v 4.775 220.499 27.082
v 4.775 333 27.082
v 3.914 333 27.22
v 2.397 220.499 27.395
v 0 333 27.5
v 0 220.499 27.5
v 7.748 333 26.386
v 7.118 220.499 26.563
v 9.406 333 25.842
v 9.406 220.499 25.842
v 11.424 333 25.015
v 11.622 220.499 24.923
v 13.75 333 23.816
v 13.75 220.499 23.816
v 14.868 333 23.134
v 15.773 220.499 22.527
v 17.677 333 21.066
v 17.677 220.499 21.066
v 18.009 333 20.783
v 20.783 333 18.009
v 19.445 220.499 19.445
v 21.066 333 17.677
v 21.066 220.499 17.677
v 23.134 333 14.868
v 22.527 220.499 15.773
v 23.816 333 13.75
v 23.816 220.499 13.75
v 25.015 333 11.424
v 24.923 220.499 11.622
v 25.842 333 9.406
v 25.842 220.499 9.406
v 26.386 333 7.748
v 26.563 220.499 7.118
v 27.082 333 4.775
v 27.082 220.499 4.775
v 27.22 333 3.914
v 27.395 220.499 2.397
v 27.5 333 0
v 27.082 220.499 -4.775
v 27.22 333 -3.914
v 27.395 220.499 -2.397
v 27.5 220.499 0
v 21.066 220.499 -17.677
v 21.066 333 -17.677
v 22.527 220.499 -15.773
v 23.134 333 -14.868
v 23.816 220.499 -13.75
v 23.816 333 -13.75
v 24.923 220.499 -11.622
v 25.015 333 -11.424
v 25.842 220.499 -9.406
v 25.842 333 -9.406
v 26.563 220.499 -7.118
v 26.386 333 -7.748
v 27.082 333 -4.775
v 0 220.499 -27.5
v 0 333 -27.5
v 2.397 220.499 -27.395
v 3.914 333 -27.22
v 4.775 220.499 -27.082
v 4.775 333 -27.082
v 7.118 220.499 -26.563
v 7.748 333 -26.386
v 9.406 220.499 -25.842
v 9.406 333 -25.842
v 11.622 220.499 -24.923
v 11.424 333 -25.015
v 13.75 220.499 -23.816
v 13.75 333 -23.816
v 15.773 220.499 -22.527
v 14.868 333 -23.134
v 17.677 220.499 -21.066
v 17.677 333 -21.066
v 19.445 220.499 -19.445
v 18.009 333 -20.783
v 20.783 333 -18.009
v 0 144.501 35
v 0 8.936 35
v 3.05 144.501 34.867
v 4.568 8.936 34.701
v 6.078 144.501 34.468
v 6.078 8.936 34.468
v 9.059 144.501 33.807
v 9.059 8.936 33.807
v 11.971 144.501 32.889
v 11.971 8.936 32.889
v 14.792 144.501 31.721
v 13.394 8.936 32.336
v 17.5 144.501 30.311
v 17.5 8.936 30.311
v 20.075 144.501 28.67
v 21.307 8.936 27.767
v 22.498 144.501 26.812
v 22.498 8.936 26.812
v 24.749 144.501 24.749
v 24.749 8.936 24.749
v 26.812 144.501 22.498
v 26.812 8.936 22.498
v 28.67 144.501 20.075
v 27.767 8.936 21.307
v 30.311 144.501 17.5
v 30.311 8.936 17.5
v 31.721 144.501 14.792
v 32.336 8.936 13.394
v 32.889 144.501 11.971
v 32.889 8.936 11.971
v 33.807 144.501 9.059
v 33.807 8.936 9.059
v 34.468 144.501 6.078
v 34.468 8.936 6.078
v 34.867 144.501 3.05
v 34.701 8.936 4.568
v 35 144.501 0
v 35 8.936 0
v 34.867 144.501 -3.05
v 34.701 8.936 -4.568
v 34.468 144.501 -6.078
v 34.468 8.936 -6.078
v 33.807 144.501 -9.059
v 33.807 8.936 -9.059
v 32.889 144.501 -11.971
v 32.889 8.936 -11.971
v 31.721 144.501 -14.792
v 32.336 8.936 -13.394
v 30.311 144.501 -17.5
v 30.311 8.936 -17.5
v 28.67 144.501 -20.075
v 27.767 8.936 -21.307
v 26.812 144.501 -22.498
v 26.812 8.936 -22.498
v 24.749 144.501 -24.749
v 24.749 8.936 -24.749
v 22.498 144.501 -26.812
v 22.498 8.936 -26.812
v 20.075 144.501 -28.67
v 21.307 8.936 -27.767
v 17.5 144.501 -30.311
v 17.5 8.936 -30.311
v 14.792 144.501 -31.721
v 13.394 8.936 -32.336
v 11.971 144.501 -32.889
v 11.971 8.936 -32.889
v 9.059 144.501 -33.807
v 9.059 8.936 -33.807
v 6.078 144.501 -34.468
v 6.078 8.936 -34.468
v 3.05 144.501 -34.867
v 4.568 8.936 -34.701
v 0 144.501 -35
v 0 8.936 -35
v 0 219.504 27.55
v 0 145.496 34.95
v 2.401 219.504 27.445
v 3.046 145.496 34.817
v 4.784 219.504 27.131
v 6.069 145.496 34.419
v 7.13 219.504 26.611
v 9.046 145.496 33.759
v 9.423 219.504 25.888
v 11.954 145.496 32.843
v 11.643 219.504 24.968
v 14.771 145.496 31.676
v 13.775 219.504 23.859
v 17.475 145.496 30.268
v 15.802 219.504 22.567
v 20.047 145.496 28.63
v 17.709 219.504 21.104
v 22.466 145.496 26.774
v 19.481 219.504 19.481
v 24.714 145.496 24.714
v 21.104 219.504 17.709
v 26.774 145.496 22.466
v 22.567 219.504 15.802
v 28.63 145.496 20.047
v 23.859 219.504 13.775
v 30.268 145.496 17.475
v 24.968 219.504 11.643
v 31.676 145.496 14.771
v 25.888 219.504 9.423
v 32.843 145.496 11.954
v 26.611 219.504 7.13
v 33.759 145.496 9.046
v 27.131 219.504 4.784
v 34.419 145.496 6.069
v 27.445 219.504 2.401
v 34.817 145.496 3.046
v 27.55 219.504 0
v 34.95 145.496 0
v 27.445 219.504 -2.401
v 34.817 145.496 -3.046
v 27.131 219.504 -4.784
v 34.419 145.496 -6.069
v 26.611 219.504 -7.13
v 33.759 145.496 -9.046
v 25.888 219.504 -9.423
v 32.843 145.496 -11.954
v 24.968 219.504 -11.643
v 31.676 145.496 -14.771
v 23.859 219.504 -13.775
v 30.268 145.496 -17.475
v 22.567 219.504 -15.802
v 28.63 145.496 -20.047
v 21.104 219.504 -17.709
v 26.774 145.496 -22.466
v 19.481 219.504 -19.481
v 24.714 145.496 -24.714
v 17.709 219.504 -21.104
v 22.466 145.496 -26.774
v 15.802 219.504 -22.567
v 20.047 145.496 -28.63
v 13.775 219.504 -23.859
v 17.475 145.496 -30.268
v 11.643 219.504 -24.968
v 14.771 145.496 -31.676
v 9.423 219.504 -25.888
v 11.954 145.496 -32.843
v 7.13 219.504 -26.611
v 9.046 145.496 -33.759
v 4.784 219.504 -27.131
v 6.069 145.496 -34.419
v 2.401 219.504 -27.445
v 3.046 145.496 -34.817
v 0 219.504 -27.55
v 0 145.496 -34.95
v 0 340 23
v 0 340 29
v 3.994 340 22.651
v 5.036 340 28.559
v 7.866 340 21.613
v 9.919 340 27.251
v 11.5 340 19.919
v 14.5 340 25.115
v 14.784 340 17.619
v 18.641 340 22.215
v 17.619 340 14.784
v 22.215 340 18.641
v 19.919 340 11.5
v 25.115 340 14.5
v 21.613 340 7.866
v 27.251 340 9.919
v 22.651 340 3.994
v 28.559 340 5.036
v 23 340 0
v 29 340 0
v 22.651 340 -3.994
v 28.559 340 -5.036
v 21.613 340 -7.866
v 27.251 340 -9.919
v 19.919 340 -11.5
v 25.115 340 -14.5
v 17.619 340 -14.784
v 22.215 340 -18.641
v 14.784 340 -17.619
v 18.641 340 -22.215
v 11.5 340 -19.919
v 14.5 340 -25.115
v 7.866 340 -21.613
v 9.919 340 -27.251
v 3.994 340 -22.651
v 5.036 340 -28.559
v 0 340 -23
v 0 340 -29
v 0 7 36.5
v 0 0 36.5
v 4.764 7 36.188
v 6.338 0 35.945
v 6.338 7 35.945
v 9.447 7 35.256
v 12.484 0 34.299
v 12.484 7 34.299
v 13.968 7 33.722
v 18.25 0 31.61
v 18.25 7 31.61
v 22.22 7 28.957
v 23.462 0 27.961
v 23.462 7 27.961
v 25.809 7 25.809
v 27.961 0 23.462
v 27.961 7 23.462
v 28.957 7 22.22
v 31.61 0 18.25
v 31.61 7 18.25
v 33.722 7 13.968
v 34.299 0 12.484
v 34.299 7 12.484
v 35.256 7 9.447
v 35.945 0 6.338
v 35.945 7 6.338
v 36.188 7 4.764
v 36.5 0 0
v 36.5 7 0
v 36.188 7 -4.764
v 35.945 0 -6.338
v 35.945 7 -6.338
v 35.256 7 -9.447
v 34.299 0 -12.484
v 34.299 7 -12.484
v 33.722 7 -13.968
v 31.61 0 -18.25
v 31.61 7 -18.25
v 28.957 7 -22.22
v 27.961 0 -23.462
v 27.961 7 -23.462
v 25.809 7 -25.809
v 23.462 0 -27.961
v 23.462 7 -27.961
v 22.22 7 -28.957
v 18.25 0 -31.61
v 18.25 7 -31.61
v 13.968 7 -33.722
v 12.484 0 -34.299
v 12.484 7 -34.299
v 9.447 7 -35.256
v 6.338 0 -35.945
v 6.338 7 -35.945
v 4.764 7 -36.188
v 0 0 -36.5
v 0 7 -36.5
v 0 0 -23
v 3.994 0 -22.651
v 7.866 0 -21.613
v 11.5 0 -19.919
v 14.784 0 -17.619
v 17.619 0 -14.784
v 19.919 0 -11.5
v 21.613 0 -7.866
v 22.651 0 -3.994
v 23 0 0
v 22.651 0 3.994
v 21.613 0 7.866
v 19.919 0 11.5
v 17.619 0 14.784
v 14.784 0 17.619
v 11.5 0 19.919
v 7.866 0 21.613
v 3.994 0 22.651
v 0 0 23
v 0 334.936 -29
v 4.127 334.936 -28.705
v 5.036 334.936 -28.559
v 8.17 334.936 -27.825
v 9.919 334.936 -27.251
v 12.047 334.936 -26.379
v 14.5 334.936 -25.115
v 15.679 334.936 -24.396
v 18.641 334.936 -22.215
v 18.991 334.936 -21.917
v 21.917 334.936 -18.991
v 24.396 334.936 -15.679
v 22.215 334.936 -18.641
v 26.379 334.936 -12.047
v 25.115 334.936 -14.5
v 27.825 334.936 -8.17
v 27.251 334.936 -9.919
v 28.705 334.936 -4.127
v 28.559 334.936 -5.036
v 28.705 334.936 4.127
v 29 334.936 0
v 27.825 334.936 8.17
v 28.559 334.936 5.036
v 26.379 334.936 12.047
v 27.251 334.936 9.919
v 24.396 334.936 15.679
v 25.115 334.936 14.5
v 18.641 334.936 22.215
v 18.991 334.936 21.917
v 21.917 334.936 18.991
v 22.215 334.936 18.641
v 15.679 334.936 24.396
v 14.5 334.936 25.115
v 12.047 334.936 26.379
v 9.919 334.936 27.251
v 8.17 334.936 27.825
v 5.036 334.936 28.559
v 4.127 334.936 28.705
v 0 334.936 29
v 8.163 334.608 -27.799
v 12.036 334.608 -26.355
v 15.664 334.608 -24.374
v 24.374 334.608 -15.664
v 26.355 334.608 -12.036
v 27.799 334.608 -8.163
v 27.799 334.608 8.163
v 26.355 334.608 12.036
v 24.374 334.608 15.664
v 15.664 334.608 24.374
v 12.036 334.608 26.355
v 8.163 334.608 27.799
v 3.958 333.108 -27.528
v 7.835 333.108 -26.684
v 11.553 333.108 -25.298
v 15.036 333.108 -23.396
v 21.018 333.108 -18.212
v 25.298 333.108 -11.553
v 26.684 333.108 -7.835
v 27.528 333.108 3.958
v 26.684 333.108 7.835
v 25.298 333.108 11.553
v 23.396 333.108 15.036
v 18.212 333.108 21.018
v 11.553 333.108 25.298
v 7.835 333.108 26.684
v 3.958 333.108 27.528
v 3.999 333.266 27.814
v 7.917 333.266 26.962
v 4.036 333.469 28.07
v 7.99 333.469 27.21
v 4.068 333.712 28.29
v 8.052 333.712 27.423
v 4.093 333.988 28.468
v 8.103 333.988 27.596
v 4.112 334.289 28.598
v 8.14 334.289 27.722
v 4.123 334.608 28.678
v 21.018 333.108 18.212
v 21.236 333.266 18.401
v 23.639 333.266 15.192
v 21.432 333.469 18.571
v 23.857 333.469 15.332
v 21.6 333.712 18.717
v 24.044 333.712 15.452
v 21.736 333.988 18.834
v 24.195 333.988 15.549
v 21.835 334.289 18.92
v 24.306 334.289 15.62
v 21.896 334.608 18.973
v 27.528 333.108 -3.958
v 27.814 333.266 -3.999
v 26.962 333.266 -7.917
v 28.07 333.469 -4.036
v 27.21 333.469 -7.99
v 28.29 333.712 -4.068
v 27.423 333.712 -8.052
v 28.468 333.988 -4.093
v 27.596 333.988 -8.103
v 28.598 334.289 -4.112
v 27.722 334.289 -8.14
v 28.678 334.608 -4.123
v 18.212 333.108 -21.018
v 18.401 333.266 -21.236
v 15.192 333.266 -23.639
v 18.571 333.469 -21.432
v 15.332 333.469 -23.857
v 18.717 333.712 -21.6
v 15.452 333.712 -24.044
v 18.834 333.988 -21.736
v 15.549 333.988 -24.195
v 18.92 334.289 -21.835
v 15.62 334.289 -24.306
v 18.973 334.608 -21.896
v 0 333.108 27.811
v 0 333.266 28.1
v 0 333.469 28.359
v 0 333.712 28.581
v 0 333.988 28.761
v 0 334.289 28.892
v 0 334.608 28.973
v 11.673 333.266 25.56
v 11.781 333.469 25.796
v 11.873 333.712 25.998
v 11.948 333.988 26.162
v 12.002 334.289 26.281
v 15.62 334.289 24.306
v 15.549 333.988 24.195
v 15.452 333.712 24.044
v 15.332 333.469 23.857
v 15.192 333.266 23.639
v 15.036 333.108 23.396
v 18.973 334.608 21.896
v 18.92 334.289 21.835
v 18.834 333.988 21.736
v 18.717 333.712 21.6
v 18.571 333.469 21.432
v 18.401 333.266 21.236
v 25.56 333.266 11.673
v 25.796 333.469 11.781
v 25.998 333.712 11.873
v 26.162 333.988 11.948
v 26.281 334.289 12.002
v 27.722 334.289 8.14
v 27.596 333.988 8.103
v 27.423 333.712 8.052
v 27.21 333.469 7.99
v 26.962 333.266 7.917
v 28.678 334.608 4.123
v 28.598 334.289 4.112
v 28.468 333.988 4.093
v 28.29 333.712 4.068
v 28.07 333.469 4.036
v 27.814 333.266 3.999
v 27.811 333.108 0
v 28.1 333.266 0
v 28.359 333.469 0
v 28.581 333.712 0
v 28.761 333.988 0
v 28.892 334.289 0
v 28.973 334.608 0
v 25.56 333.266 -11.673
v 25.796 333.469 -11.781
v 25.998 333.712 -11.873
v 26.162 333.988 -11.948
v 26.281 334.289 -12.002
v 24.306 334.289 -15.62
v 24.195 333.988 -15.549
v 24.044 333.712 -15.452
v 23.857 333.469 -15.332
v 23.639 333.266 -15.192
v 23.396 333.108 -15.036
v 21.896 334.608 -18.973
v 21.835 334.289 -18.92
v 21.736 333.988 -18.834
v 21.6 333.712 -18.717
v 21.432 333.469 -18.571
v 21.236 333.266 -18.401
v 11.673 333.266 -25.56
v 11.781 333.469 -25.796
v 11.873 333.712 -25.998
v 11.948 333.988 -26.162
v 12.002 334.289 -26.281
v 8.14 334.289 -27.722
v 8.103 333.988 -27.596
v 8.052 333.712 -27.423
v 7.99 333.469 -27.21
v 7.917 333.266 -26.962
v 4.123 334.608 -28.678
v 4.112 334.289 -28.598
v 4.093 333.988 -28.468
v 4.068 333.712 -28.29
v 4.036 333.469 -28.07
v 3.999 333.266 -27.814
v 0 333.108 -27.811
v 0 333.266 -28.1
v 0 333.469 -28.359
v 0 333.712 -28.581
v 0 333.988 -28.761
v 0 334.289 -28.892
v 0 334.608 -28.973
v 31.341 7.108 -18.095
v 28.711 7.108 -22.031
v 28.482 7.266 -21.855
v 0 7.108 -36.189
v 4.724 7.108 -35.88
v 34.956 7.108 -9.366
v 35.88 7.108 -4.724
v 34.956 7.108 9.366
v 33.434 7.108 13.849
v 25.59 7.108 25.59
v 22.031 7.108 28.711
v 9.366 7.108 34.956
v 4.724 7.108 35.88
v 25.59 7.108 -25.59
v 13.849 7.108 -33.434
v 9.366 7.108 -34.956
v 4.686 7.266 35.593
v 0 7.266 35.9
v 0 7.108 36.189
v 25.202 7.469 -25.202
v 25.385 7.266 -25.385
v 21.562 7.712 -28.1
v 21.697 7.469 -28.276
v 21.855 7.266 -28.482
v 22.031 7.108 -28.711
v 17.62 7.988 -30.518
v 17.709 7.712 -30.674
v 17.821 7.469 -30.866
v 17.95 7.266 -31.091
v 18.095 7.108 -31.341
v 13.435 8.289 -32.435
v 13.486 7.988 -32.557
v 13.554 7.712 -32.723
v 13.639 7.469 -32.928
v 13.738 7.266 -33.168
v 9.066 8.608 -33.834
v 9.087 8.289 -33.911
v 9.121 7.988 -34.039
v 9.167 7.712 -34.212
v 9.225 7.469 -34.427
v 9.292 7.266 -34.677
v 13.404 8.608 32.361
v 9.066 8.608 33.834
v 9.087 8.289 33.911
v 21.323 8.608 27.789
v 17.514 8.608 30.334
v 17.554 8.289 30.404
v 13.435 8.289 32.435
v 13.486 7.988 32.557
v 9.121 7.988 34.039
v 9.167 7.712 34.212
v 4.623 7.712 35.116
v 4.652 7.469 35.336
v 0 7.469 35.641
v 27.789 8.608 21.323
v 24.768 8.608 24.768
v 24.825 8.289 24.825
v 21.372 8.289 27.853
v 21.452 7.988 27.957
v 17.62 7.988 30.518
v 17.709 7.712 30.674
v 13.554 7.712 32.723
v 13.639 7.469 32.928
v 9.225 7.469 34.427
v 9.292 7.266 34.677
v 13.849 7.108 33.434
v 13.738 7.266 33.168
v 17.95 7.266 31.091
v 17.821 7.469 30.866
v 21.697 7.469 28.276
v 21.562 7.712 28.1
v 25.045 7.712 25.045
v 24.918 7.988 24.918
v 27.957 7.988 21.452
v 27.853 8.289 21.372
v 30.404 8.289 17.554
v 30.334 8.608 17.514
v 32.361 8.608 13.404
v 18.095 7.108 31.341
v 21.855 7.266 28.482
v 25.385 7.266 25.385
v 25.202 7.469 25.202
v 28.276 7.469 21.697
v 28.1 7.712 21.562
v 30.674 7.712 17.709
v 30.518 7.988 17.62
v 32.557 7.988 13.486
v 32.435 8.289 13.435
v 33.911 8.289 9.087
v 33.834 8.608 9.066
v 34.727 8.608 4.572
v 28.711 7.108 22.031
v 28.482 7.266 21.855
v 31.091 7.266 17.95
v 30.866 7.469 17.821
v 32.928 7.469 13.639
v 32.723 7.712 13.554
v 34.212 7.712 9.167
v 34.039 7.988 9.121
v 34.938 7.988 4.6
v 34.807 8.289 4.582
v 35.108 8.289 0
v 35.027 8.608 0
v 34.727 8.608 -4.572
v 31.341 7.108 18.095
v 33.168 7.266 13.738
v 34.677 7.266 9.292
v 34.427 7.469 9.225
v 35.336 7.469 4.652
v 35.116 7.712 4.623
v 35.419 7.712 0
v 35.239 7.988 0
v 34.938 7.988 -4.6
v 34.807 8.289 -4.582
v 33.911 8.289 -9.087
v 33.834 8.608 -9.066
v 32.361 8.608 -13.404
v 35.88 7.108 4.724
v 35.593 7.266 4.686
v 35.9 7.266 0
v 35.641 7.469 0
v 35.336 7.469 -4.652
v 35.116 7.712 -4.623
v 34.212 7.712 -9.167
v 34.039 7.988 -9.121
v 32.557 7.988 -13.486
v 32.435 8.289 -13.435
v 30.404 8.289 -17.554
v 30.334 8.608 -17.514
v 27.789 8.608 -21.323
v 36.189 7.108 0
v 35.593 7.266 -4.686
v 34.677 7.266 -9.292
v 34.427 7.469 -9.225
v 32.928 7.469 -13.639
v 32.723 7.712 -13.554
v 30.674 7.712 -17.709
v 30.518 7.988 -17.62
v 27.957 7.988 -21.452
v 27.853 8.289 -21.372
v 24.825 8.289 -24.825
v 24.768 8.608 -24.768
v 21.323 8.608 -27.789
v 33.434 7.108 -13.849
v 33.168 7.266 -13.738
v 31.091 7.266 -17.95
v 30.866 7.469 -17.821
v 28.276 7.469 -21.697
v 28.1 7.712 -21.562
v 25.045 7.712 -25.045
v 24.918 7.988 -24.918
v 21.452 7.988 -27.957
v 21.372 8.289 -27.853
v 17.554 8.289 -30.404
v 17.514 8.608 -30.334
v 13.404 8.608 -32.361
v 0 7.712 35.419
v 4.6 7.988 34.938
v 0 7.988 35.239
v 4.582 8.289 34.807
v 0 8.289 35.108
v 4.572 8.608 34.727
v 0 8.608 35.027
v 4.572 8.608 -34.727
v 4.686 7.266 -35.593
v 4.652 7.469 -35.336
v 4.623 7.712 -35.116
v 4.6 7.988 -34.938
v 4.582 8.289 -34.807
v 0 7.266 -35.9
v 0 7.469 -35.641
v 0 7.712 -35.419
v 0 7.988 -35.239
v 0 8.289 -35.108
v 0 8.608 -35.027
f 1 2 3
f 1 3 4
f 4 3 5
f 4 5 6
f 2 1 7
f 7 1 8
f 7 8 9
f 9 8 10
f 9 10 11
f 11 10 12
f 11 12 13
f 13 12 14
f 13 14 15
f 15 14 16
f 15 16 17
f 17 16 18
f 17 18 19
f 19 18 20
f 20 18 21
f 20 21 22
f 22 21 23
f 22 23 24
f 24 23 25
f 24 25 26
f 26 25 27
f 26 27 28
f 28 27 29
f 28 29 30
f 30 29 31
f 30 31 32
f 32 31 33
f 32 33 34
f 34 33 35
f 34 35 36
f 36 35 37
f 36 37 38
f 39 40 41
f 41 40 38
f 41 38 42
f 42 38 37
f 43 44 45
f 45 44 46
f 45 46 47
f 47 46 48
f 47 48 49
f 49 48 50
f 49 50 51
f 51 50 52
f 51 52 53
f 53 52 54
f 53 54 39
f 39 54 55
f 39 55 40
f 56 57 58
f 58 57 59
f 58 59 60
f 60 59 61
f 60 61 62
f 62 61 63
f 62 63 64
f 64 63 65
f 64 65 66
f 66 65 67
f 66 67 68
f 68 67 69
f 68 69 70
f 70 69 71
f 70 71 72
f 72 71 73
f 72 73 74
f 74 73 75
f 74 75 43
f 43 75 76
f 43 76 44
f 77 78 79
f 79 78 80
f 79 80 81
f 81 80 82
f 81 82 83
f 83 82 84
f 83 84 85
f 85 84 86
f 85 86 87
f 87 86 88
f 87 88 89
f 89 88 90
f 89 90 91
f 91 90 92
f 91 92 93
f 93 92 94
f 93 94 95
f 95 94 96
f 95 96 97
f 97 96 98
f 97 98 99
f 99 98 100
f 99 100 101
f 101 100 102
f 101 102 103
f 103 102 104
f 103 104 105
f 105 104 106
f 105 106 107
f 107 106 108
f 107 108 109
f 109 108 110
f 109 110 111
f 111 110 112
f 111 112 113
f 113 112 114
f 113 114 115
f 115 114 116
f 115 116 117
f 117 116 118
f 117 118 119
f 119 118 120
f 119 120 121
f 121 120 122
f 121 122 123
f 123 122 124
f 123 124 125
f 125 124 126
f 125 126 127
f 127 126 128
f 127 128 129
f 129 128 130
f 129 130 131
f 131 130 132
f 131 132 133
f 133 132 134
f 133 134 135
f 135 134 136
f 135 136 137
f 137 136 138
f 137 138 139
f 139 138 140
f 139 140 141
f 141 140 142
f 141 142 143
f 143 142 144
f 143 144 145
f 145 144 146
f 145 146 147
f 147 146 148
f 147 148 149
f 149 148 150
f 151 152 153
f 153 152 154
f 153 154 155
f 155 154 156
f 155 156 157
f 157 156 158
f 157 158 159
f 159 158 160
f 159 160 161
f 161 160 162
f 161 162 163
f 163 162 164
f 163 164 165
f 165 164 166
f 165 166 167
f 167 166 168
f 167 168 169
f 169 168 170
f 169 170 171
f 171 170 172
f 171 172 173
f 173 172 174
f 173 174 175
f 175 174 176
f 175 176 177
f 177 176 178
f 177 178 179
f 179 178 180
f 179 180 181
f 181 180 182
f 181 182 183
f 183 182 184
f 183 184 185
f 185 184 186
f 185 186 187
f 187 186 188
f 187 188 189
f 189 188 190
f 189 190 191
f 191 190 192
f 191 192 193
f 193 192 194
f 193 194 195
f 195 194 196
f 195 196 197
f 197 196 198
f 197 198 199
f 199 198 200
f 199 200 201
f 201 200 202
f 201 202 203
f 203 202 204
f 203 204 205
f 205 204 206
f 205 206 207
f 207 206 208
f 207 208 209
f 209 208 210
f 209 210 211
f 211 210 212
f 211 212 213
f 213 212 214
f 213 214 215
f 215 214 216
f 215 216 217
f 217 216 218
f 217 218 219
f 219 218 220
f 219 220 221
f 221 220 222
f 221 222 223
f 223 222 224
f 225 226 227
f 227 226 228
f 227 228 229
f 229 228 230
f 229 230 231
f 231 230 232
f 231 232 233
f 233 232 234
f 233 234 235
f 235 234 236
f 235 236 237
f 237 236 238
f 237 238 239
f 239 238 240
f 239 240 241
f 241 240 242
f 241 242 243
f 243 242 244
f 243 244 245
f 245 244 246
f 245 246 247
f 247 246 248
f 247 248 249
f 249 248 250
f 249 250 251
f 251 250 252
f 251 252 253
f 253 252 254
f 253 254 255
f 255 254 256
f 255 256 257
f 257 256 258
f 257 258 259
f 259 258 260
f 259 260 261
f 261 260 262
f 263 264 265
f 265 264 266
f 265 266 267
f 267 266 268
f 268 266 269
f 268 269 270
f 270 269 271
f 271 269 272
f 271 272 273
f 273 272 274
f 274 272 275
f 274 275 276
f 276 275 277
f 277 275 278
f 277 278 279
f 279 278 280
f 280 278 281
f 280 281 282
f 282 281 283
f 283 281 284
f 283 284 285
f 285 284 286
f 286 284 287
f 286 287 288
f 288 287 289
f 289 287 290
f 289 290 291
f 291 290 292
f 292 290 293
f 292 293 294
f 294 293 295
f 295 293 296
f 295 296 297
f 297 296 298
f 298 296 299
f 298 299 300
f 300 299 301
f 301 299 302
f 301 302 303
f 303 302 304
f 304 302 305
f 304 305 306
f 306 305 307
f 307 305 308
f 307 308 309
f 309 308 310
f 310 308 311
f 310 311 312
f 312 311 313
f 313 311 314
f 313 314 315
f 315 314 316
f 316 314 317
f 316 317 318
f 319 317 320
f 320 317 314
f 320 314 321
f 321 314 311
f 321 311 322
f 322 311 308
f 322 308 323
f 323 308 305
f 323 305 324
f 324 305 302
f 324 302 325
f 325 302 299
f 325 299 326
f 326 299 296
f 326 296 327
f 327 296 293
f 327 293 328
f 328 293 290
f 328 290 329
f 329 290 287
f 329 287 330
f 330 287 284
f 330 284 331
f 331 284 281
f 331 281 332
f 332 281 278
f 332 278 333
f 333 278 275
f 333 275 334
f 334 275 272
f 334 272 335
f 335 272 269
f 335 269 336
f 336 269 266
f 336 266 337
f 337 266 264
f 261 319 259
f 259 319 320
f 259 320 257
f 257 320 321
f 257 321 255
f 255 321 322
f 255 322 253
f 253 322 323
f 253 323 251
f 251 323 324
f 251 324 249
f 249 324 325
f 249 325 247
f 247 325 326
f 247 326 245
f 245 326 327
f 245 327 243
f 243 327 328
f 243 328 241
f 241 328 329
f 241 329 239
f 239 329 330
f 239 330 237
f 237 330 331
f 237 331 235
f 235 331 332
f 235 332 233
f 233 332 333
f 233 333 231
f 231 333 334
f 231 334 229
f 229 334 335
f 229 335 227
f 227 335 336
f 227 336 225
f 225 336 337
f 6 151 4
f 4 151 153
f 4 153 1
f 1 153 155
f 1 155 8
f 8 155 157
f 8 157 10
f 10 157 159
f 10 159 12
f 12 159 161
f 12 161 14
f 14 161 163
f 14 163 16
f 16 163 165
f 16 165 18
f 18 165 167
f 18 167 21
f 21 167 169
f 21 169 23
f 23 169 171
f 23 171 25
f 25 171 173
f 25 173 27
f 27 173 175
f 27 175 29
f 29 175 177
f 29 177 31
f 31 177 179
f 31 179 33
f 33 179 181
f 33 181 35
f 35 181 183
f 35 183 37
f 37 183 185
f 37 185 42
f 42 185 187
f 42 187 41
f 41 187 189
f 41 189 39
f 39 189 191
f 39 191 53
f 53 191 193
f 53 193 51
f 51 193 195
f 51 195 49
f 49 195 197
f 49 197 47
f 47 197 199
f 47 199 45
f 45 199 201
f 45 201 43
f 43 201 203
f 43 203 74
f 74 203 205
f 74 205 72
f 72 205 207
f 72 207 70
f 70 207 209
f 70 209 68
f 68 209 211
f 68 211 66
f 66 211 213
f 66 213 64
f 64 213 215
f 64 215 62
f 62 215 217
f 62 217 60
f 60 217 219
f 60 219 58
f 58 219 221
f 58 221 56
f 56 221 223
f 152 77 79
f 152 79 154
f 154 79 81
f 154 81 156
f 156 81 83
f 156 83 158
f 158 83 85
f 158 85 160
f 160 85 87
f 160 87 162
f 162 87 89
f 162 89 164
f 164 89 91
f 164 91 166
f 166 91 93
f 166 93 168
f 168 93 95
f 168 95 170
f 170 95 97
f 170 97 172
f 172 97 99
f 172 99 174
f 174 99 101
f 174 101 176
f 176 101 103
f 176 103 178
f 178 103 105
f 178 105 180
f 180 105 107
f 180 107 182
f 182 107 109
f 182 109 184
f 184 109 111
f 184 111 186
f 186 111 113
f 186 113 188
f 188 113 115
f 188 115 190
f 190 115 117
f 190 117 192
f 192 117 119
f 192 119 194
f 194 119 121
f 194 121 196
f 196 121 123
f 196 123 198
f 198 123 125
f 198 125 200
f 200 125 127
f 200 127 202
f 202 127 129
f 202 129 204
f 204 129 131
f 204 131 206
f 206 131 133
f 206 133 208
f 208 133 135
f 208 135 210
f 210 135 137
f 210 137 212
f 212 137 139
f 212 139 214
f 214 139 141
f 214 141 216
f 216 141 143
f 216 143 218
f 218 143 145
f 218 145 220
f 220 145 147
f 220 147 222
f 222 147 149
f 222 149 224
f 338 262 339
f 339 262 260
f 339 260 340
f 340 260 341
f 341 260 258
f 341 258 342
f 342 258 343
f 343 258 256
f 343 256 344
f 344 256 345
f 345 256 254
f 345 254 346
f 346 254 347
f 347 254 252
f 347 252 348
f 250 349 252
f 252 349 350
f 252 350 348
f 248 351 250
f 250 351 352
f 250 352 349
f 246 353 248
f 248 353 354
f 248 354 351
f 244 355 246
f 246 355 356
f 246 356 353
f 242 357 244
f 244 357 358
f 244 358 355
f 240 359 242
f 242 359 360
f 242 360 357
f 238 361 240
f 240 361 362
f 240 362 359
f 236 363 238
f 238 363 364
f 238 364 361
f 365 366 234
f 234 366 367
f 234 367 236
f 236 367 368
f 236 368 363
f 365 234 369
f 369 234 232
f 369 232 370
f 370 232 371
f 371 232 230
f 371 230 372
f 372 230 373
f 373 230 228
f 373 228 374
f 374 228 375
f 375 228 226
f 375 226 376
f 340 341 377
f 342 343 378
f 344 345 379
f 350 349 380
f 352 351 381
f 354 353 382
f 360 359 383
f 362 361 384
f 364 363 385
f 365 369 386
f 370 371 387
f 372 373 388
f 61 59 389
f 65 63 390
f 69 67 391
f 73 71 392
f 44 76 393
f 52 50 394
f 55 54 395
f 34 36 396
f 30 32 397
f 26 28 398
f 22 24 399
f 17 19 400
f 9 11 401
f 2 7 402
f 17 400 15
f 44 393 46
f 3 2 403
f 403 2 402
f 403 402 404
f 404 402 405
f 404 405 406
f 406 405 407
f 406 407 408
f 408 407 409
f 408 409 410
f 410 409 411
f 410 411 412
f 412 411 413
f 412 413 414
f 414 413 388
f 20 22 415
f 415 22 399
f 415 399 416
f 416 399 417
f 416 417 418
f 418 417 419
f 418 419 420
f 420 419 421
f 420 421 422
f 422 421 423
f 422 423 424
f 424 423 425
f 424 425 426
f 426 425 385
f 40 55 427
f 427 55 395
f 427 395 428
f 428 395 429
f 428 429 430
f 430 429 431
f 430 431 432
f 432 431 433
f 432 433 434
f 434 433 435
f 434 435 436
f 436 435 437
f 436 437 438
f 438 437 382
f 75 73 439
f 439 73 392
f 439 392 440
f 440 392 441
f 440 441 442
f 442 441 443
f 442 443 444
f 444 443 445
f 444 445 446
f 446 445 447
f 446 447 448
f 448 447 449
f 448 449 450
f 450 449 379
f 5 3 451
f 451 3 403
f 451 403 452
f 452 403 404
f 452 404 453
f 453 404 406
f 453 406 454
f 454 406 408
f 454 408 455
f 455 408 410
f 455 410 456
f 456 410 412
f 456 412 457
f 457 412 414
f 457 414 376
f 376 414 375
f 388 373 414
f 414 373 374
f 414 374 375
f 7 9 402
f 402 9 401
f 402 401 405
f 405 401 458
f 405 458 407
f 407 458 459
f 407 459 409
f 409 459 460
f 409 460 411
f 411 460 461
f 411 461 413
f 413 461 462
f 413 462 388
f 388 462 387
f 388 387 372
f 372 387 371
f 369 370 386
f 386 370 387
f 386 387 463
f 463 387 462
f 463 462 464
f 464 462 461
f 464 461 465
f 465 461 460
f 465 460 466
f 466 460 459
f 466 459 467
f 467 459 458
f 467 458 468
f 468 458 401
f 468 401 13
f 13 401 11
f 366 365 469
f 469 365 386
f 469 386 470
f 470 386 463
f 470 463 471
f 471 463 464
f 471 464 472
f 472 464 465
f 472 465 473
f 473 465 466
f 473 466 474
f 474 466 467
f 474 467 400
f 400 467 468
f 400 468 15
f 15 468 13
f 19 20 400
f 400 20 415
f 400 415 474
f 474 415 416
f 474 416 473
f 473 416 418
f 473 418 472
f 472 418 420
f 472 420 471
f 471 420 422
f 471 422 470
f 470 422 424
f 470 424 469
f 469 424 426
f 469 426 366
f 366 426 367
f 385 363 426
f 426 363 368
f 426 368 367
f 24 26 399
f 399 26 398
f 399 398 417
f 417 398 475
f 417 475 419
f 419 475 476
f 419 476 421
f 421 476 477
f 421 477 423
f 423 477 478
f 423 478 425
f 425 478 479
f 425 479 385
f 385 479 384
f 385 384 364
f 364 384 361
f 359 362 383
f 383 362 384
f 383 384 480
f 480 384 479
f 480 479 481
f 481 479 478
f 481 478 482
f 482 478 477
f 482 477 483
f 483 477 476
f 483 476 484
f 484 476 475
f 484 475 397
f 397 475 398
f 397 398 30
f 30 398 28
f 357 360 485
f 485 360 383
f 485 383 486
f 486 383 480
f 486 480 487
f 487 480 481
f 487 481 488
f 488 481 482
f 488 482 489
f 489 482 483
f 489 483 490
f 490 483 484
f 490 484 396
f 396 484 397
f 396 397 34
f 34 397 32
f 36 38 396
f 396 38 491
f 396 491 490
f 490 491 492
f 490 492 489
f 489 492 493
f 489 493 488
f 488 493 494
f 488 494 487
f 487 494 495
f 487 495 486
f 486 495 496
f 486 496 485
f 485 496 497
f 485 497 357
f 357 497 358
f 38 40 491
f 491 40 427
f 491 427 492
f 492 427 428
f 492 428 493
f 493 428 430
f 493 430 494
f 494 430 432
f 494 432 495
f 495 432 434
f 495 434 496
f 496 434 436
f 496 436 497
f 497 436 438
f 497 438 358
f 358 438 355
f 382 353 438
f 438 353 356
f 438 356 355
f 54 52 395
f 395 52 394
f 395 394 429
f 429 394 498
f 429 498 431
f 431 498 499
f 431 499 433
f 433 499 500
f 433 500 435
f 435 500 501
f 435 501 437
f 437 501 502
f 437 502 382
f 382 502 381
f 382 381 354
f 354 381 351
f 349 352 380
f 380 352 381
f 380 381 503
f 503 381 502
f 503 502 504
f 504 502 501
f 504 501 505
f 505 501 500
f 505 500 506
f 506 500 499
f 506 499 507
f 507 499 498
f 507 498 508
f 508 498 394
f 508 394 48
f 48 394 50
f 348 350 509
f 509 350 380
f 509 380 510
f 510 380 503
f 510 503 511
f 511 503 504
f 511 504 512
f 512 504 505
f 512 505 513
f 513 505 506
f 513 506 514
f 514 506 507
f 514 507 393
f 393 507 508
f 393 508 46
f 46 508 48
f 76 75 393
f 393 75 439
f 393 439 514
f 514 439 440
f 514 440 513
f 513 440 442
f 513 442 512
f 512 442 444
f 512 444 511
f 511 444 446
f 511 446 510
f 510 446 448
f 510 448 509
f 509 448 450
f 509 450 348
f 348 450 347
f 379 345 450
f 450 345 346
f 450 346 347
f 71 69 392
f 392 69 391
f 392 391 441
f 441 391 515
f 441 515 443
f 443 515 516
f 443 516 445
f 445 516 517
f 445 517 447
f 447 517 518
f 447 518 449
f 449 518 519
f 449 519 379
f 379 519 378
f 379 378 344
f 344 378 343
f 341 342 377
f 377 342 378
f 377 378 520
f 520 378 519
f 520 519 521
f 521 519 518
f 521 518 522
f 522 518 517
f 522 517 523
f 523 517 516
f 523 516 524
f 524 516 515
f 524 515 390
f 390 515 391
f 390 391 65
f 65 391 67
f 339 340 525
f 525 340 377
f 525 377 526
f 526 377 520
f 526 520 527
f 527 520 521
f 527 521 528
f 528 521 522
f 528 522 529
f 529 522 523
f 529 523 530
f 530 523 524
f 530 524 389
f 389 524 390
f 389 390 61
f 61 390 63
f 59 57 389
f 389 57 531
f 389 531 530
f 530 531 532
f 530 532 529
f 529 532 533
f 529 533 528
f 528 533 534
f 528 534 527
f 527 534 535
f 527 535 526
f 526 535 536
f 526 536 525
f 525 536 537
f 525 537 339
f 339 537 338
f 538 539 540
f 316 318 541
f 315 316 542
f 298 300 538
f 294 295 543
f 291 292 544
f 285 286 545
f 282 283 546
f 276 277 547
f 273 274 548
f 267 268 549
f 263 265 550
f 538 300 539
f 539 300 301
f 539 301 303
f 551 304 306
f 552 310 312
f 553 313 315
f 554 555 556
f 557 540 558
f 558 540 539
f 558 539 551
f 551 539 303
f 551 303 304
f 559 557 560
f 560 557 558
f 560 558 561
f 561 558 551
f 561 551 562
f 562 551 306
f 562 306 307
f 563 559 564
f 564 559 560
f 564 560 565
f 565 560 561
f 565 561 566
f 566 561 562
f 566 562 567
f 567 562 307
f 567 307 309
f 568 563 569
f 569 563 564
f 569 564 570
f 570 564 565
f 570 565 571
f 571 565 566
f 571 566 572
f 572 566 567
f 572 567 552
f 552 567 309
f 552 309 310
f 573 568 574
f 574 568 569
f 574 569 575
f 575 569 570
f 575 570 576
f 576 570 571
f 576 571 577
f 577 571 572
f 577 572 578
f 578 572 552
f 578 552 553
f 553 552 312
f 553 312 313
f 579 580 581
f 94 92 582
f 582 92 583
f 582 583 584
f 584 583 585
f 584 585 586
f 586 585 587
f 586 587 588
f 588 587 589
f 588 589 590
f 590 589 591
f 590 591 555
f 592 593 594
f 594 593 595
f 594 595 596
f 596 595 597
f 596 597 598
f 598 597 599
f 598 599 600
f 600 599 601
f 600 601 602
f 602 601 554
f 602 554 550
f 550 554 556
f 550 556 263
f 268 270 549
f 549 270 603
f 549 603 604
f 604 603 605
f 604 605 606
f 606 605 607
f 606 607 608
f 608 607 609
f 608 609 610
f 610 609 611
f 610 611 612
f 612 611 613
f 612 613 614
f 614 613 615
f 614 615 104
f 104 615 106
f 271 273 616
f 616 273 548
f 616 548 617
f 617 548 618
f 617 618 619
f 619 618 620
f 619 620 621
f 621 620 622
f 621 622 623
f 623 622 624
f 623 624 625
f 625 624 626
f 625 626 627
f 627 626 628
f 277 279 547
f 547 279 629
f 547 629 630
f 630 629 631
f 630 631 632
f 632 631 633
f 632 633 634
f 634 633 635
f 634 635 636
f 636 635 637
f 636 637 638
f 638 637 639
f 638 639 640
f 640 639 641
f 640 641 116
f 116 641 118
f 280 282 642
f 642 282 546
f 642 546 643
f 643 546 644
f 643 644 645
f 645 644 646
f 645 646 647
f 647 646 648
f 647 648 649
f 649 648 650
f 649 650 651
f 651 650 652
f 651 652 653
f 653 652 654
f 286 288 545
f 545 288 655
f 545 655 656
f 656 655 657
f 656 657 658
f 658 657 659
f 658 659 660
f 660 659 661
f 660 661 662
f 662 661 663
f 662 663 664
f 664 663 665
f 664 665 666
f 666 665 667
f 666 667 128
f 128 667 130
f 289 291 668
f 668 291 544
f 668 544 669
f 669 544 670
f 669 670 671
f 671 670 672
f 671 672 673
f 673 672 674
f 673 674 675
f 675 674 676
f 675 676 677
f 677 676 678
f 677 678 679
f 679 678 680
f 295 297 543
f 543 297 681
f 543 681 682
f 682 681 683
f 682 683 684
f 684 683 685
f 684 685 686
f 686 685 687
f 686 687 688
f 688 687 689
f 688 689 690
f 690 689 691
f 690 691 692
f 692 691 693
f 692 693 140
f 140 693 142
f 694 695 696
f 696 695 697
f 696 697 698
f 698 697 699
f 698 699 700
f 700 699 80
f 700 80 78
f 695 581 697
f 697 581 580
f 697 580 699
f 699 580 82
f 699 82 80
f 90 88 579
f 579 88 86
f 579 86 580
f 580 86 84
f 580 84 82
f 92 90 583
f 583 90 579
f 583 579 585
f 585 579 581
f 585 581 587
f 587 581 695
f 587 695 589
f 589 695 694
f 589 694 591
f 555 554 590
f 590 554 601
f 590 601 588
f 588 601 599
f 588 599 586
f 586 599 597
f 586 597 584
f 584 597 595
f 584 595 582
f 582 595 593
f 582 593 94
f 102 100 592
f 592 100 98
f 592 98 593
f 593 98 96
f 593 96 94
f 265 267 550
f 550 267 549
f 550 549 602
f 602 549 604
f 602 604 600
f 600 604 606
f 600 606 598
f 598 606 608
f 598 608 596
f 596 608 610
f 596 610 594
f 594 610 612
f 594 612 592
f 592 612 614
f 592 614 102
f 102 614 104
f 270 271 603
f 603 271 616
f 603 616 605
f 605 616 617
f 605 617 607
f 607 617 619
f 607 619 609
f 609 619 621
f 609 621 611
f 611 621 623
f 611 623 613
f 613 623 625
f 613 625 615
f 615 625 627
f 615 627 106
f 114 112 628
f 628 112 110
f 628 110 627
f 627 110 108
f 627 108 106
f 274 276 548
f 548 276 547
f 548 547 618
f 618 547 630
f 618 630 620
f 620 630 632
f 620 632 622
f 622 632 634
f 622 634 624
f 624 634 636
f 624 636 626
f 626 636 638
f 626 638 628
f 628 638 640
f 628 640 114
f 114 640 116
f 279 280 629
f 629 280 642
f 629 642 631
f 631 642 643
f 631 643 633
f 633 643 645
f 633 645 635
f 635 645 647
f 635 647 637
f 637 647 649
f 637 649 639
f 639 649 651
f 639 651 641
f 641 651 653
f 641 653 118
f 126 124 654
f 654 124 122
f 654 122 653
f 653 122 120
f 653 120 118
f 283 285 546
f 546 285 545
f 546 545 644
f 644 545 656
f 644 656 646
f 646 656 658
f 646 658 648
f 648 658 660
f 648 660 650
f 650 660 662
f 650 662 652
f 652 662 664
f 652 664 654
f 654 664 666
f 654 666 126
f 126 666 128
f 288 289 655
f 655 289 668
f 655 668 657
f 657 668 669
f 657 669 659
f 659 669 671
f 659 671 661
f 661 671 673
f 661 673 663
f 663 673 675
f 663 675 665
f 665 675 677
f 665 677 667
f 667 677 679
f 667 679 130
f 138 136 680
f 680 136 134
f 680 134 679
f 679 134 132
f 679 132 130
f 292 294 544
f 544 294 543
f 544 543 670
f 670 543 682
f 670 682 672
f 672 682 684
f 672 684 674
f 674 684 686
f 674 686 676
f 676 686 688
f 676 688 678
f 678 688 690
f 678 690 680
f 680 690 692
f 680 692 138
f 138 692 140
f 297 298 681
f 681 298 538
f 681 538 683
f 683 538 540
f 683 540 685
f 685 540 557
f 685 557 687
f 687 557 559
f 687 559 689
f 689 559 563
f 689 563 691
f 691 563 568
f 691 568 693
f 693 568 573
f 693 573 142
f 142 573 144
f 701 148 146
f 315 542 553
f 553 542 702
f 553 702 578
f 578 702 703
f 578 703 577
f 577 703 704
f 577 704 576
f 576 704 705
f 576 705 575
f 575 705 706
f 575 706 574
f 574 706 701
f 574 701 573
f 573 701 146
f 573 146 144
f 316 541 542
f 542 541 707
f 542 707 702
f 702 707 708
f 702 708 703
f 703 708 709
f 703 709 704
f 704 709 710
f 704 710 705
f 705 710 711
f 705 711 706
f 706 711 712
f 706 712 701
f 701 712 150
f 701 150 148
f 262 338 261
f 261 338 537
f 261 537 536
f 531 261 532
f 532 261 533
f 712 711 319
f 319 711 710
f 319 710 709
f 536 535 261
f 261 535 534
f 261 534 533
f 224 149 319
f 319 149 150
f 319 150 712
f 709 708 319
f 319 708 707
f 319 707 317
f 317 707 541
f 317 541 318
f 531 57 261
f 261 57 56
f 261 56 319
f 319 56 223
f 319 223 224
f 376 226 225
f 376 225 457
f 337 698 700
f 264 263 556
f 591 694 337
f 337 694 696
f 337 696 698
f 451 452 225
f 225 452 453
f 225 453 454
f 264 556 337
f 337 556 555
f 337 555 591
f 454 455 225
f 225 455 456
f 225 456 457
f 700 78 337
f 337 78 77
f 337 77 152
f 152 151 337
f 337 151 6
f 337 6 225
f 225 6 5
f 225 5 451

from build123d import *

# Parameters (mm, degrees)
CROQUIS1_R              = 35
SALIENTE_EXTRUIR1_DEPTH = 145
CROQUIS2_R              = 27.5
CROQUIS3_R              = 27.5
SALIENTE_EXTRUIR2_DEPTH = 120
CROQUIS5_R              = 36.5
SALIENTE_EXTRUIR3_DEPTH = 7
CROQUIS4_R              = 23
CORTAR_EXTRUIR1_DEPTH   = 525
REDONDEO1_R             = 10
SALIENTE_EXTRUIR4_START = -7
CROQUIS6_R              = 29
CROQUIS6_R_2            = 23
SALIENTE_EXTRUIR4_DEPTH = 7
REDONDEO2_R             = 2
CROQUIS7_W              = 119.738645001
CROQUIS7_H              = 395.389304841
CORTAR_EXTRUIR2_DEPTH   = 93


with BuildPart() as part:
    # Croquis1 → Saliente-Extruir1 (new body)
    with BuildSketch(Plane(origin=(0, 0, 0), x_dir=(1, 0, 0), z_dir=(0, 1, 0))):
        with Locations(Location((0, 0, 0), (0, 0, 270))):
            Circle(CROQUIS1_R)
    extrude(amount=SALIENTE_EXTRUIR1_DEPTH)

    # Croquis2 → section 1 of recubrir1
    with BuildSketch(Plane(origin=(0, 220, 0), x_dir=(1, 0, 0), z_dir=(0, 1, 0)), mode=Mode.PRIVATE) as recubrir1_s1:
        Circle(CROQUIS2_R)
    # loft up to a face of the part (recubrir1)
    loft([Face(Wire([part.edges().sort_by_distance((25.51390196, 145, -23.959148708))[0]])), recubrir1_s1.sketch])

    # Croquis3 → Saliente-Extruir2 (add)
    with BuildSketch(Plane(origin=(0, 220, 0), x_dir=(1, 0, 0), z_dir=(0, 1, 0))):
        with Locations(Location((0, 0, 0), (0, 0, 270))):
            Circle(CROQUIS3_R)
    extrude(amount=SALIENTE_EXTRUIR2_DEPTH)

    # Croquis5 → Saliente-Extruir3 (add)
    with BuildSketch(Plane.XZ):
        with Locations(Location((0, 0, 0), (0, 0, 270))):
            Circle(CROQUIS5_R)
    extrude(amount=-SALIENTE_EXTRUIR3_DEPTH)

    # Croquis4 → Cortar-Extruir1 (cut)
    with BuildSketch(Plane.XZ):
        with Locations(Location((0, 0, 0), (0, 0, 270))):
            Circle(CROQUIS4_R)
    extrude(amount=-CORTAR_EXTRUIR1_DEPTH, mode=Mode.SUBTRACT)

    # Redondeo1
    # the kernel refuses this fillet: 10 mm, written as the material it adds along each edge
    with BuildSketch(Plane(origin=(0, 220, 0), x_dir=(0, 0, 1), z_dir=(1, 0, 0))) as redondeo1_piece_1:
        with BuildLine():
            CenterArc((27.5 + REDONDEO1_R, -REDONDEO1_R * 0.0498756211209), REDONDEO1_R, 174.289406863, 5.710593137)
            Line((27.5 + REDONDEO1_R * 0.00496280979001, REDONDEO1_R * 0.0496280979001), (27.5, 0))
            Line((27.5, 0), (27.5, -REDONDEO1_R * 0.0498756211209))
        make_face()
    revolve(axis=Axis((0, 220, 0), (0, -1, 0)))
    # the kernel refuses this fillet: 10 mm, written as the material it takes off along each edge
    with BuildSketch(Plane(origin=(0, 145, 0), x_dir=(0, 0, 1), z_dir=(-1, 0, 0))) as redondeo1_2_piece_1:
        with BuildLine():
            CenterArc((35 - REDONDEO1_R, -REDONDEO1_R * 0.0498756211209), REDONDEO1_R, 0, 5.710593137)
            Line((35 - REDONDEO1_R * 0.00496280979001, REDONDEO1_R * 0.0496280979001), (35, 0))
            Line((35, 0), (35, -REDONDEO1_R * 0.0498756211209))
        make_face()
    revolve(axis=Axis((0, 145, 0), (0, 1, 0)), mode=Mode.SUBTRACT)

    # Croquis6 → Saliente-Extruir4 (add)
    with BuildSketch(Plane(origin=(0, 340, 0), x_dir=(1, 0, 0), z_dir=(0, 1, 0)).offset(SALIENTE_EXTRUIR4_START)):
        with Locations(Location((0, 0, 0), (0, 0, 270))):
            Circle(CROQUIS6_R)
        with Locations(Location((0, 0, 0), (0, 0, 90))):
            Circle(CROQUIS6_R_2, mode=Mode.SUBTRACT)
    extrude(amount=SALIENTE_EXTRUIR4_DEPTH)

    # Redondeo2
    # the kernel refuses this fillet: 2 mm, written as the material it adds along each edge
    with BuildSketch(Plane(origin=(0, 7, 0), x_dir=(0, 0, 1), z_dir=(1, 0, 0))) as redondeo2_piece_1:
        with BuildLine():
            CenterArc((37, -1.936491673), REDONDEO2_R, 104.477512186, 75.522487814)
            Line((35, -1.936491673), (34.96, -1.936491673))
            Line((34.96, -1.936491673), (34.96, 0))
            Line((34.96, 0), (35, 0.04))
            ThreePointArc((35, 0.04), (35.75, 0.04), (36.49, 0.038729833))
            Line((36.49, 0.038729833), (36.5, 0))
        make_face()
    revolve(axis=Axis((0, 7, 0), (0, -1, 0)))
    # the kernel refuses this fillet: 2 mm, written as the material it takes off along each edge
    with BuildSketch(Plane(origin=(0, 333, 0), x_dir=(0, 0, 1), z_dir=(-1, 0, 0))) as redondeo2_2_piece_1:
        with BuildLine():
            CenterArc((27, 1.936491673), REDONDEO2_R, 284.477512186, 75.522487814)
            Line((29, 1.936491673), (29.04, 1.936491673))
            Line((29.04, 1.936491673), (29.04, 0))
            Line((29.04, 0), (29, -0.04))
            ThreePointArc((29, -0.04), (28.25, -0.04), (27.51, -0.038729833))
            Line((27.51, -0.038729833), (27.5, 0))
        make_face()
    revolve(axis=Axis((0, 333, 0), (0, 1, 0)), mode=Mode.SUBTRACT)

    # Croquis7 → Cortar-Extruir2 (cut)
    with BuildSketch(Plane(origin=(0, 0, 0), x_dir=(0, 0, -1), z_dir=(1, 0, 0))):
        with Locations((-9.607607261, 197.694652421)):
            Rectangle(CROQUIS7_W, CROQUIS7_H)
    extrude(amount=-CORTAR_EXTRUIR2_DEPTH, mode=Mode.SUBTRACT)


solid = part.part
